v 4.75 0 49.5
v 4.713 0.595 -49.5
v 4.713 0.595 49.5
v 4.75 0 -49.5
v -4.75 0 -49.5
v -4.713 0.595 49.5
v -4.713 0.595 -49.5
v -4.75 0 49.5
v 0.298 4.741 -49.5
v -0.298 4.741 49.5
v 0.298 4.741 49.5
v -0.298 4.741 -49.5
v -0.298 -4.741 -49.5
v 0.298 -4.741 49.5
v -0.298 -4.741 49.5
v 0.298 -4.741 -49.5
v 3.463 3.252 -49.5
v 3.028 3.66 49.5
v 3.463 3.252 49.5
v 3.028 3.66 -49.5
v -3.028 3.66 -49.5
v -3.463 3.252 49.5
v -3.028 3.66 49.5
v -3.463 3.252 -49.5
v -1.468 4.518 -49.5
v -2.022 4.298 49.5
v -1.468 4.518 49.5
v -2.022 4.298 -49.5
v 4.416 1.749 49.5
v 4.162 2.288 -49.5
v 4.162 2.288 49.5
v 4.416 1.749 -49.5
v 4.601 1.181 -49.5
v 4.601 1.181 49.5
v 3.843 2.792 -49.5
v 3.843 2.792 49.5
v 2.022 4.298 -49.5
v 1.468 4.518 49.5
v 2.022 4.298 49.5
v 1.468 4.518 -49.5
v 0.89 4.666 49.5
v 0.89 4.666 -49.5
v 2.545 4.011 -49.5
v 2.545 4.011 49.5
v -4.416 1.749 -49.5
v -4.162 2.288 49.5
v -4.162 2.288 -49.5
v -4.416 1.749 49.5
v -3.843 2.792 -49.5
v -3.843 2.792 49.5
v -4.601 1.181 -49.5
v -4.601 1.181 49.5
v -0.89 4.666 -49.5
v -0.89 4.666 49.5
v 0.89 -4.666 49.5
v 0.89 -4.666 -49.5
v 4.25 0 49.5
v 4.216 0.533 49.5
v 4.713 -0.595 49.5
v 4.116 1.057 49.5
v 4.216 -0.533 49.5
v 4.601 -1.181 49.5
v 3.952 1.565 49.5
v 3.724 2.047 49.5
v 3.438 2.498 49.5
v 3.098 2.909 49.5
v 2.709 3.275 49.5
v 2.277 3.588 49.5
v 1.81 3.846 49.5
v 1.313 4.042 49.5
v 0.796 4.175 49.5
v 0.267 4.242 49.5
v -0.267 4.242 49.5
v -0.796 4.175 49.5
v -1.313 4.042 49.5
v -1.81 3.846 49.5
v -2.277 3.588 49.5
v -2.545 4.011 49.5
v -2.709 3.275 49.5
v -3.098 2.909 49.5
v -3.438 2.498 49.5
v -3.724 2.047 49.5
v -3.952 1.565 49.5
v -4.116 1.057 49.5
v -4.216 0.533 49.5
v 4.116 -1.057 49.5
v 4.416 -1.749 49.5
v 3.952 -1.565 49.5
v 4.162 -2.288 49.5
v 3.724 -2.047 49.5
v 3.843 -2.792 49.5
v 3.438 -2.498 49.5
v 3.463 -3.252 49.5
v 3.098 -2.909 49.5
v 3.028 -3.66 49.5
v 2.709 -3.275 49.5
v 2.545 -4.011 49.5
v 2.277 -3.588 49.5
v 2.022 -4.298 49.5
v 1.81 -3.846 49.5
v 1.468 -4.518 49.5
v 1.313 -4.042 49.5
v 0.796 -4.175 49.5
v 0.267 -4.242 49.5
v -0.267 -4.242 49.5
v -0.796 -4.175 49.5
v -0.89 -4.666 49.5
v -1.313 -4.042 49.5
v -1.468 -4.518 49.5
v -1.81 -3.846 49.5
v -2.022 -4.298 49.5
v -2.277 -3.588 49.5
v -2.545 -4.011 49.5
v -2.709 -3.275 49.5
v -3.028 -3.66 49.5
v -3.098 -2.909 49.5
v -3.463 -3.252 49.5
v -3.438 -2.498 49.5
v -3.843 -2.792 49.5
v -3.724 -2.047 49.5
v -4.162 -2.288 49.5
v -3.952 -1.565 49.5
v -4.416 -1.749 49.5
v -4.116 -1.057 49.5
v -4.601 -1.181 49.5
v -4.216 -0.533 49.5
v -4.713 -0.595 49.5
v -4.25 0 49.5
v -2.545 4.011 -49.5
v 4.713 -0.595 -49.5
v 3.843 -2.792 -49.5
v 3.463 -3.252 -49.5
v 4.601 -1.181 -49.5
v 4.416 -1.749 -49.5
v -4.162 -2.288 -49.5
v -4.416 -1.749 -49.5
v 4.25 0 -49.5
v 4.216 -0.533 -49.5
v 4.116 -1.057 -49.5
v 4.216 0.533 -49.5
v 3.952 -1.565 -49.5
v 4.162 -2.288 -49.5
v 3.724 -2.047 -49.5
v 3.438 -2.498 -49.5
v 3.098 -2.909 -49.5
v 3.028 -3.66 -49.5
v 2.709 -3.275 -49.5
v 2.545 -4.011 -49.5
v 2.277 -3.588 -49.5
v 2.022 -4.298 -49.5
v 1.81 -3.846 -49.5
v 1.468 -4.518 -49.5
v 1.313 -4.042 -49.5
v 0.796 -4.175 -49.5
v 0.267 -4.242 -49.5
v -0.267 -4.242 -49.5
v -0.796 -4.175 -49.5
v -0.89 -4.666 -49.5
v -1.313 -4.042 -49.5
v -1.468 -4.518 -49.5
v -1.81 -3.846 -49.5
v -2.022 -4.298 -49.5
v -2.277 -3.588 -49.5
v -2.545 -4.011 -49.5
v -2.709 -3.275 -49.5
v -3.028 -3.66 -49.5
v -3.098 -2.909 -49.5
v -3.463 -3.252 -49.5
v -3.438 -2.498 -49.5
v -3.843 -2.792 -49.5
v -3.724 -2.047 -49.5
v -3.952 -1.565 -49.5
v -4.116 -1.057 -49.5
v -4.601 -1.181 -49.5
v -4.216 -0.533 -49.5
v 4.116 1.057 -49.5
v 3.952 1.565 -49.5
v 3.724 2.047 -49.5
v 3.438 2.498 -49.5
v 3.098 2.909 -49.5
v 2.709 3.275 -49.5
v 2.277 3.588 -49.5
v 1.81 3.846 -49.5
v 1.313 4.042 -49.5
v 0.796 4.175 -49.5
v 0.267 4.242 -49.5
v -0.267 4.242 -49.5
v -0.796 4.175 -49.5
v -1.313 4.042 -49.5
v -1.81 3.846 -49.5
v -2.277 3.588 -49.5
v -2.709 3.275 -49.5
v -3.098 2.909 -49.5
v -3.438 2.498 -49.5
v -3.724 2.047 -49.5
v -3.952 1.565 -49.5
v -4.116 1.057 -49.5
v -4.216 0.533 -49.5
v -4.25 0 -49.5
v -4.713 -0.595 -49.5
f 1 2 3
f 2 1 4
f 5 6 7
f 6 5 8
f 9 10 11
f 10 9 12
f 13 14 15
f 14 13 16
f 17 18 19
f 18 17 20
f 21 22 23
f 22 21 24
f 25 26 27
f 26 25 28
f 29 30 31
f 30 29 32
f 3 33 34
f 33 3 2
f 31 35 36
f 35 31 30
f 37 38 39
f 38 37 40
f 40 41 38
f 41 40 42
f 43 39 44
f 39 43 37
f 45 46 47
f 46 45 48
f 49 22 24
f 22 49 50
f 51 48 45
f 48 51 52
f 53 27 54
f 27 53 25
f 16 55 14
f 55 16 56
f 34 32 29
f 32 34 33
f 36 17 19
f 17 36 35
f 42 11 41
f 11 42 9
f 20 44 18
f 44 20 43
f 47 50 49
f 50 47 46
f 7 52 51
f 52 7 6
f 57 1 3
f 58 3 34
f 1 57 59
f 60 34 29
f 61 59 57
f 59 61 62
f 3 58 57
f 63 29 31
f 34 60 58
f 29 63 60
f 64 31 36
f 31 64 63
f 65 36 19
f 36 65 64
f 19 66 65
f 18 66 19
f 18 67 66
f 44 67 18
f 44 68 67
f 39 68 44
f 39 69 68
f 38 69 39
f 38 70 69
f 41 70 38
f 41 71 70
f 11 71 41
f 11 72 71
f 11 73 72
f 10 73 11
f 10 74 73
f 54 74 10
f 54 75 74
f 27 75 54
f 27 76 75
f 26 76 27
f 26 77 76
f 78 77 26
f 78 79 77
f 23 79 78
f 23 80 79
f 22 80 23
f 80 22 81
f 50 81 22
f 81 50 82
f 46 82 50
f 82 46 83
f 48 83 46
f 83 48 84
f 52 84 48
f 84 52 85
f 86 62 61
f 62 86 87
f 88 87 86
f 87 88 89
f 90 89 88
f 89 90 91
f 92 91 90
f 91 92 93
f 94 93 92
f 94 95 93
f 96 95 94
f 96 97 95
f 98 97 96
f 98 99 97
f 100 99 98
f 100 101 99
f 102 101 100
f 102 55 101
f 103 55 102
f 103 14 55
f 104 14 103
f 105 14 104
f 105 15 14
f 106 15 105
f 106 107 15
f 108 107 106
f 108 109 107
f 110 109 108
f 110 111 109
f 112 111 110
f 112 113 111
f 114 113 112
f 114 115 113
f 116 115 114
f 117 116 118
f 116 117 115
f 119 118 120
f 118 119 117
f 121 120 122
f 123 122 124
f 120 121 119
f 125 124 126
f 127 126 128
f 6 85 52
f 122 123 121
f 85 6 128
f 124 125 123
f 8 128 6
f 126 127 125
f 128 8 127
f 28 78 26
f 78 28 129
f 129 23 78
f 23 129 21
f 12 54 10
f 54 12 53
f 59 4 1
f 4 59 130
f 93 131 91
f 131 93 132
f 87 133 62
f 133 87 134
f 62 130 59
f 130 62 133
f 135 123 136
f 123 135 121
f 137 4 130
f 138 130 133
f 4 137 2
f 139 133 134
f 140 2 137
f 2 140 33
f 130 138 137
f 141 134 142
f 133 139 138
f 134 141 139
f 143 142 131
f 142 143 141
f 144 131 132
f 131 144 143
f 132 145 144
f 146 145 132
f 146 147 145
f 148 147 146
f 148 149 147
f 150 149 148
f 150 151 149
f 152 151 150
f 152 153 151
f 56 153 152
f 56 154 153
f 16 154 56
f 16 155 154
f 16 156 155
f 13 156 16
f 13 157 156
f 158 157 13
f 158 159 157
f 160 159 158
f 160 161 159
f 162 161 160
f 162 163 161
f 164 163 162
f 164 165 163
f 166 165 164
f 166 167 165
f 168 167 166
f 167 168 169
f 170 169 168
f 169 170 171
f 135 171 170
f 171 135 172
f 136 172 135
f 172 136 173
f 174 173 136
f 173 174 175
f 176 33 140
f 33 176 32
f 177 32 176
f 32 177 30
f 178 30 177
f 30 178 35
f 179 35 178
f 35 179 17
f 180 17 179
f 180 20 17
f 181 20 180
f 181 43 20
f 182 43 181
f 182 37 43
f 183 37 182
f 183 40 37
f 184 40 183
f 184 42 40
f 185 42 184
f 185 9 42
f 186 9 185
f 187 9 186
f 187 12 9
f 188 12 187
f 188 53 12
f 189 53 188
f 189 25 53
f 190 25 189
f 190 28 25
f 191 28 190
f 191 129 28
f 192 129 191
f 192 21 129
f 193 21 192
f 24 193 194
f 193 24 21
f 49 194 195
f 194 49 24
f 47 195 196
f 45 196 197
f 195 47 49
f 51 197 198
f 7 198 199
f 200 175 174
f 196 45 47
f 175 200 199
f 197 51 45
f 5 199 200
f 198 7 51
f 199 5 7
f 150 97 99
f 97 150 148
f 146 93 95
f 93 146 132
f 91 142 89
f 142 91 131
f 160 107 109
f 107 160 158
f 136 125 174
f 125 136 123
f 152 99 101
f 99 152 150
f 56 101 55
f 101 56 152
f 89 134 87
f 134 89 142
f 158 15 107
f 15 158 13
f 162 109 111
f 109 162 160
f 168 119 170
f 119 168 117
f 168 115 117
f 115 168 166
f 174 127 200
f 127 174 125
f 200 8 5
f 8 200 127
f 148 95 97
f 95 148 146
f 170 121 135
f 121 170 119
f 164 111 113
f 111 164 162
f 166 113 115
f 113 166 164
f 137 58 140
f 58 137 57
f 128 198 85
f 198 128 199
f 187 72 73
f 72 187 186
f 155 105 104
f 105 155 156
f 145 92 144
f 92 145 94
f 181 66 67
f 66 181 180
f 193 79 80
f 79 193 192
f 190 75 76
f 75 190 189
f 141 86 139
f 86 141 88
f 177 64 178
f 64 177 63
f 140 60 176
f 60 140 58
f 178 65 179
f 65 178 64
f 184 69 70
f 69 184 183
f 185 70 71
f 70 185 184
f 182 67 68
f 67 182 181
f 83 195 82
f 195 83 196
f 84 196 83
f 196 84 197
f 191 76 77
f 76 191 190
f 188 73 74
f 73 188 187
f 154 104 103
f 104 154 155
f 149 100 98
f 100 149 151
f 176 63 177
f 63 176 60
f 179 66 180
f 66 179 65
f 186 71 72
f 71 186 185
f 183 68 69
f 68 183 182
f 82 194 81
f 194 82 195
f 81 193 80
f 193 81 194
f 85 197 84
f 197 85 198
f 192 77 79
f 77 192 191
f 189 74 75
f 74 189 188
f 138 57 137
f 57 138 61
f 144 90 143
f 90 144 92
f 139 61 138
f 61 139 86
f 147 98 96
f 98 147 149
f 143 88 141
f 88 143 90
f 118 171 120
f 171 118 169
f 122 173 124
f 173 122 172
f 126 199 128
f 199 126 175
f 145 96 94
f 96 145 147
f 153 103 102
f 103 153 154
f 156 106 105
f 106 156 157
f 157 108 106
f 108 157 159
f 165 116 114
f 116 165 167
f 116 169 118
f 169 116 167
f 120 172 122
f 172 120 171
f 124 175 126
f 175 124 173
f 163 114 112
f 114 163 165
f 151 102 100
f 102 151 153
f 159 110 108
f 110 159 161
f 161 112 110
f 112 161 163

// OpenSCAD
$fn = 50;


difference() {
	union() {
		translate(v = [0, 0, -49.5000000000]) {
			cylinder(h = 99, r = 4.7500000000);
		}
	}
	union() {
		translate(v = [0, 0, -100.0000000000]) {
			cylinder(h = 200, r = 4.2500000000);
		}
	}
}
